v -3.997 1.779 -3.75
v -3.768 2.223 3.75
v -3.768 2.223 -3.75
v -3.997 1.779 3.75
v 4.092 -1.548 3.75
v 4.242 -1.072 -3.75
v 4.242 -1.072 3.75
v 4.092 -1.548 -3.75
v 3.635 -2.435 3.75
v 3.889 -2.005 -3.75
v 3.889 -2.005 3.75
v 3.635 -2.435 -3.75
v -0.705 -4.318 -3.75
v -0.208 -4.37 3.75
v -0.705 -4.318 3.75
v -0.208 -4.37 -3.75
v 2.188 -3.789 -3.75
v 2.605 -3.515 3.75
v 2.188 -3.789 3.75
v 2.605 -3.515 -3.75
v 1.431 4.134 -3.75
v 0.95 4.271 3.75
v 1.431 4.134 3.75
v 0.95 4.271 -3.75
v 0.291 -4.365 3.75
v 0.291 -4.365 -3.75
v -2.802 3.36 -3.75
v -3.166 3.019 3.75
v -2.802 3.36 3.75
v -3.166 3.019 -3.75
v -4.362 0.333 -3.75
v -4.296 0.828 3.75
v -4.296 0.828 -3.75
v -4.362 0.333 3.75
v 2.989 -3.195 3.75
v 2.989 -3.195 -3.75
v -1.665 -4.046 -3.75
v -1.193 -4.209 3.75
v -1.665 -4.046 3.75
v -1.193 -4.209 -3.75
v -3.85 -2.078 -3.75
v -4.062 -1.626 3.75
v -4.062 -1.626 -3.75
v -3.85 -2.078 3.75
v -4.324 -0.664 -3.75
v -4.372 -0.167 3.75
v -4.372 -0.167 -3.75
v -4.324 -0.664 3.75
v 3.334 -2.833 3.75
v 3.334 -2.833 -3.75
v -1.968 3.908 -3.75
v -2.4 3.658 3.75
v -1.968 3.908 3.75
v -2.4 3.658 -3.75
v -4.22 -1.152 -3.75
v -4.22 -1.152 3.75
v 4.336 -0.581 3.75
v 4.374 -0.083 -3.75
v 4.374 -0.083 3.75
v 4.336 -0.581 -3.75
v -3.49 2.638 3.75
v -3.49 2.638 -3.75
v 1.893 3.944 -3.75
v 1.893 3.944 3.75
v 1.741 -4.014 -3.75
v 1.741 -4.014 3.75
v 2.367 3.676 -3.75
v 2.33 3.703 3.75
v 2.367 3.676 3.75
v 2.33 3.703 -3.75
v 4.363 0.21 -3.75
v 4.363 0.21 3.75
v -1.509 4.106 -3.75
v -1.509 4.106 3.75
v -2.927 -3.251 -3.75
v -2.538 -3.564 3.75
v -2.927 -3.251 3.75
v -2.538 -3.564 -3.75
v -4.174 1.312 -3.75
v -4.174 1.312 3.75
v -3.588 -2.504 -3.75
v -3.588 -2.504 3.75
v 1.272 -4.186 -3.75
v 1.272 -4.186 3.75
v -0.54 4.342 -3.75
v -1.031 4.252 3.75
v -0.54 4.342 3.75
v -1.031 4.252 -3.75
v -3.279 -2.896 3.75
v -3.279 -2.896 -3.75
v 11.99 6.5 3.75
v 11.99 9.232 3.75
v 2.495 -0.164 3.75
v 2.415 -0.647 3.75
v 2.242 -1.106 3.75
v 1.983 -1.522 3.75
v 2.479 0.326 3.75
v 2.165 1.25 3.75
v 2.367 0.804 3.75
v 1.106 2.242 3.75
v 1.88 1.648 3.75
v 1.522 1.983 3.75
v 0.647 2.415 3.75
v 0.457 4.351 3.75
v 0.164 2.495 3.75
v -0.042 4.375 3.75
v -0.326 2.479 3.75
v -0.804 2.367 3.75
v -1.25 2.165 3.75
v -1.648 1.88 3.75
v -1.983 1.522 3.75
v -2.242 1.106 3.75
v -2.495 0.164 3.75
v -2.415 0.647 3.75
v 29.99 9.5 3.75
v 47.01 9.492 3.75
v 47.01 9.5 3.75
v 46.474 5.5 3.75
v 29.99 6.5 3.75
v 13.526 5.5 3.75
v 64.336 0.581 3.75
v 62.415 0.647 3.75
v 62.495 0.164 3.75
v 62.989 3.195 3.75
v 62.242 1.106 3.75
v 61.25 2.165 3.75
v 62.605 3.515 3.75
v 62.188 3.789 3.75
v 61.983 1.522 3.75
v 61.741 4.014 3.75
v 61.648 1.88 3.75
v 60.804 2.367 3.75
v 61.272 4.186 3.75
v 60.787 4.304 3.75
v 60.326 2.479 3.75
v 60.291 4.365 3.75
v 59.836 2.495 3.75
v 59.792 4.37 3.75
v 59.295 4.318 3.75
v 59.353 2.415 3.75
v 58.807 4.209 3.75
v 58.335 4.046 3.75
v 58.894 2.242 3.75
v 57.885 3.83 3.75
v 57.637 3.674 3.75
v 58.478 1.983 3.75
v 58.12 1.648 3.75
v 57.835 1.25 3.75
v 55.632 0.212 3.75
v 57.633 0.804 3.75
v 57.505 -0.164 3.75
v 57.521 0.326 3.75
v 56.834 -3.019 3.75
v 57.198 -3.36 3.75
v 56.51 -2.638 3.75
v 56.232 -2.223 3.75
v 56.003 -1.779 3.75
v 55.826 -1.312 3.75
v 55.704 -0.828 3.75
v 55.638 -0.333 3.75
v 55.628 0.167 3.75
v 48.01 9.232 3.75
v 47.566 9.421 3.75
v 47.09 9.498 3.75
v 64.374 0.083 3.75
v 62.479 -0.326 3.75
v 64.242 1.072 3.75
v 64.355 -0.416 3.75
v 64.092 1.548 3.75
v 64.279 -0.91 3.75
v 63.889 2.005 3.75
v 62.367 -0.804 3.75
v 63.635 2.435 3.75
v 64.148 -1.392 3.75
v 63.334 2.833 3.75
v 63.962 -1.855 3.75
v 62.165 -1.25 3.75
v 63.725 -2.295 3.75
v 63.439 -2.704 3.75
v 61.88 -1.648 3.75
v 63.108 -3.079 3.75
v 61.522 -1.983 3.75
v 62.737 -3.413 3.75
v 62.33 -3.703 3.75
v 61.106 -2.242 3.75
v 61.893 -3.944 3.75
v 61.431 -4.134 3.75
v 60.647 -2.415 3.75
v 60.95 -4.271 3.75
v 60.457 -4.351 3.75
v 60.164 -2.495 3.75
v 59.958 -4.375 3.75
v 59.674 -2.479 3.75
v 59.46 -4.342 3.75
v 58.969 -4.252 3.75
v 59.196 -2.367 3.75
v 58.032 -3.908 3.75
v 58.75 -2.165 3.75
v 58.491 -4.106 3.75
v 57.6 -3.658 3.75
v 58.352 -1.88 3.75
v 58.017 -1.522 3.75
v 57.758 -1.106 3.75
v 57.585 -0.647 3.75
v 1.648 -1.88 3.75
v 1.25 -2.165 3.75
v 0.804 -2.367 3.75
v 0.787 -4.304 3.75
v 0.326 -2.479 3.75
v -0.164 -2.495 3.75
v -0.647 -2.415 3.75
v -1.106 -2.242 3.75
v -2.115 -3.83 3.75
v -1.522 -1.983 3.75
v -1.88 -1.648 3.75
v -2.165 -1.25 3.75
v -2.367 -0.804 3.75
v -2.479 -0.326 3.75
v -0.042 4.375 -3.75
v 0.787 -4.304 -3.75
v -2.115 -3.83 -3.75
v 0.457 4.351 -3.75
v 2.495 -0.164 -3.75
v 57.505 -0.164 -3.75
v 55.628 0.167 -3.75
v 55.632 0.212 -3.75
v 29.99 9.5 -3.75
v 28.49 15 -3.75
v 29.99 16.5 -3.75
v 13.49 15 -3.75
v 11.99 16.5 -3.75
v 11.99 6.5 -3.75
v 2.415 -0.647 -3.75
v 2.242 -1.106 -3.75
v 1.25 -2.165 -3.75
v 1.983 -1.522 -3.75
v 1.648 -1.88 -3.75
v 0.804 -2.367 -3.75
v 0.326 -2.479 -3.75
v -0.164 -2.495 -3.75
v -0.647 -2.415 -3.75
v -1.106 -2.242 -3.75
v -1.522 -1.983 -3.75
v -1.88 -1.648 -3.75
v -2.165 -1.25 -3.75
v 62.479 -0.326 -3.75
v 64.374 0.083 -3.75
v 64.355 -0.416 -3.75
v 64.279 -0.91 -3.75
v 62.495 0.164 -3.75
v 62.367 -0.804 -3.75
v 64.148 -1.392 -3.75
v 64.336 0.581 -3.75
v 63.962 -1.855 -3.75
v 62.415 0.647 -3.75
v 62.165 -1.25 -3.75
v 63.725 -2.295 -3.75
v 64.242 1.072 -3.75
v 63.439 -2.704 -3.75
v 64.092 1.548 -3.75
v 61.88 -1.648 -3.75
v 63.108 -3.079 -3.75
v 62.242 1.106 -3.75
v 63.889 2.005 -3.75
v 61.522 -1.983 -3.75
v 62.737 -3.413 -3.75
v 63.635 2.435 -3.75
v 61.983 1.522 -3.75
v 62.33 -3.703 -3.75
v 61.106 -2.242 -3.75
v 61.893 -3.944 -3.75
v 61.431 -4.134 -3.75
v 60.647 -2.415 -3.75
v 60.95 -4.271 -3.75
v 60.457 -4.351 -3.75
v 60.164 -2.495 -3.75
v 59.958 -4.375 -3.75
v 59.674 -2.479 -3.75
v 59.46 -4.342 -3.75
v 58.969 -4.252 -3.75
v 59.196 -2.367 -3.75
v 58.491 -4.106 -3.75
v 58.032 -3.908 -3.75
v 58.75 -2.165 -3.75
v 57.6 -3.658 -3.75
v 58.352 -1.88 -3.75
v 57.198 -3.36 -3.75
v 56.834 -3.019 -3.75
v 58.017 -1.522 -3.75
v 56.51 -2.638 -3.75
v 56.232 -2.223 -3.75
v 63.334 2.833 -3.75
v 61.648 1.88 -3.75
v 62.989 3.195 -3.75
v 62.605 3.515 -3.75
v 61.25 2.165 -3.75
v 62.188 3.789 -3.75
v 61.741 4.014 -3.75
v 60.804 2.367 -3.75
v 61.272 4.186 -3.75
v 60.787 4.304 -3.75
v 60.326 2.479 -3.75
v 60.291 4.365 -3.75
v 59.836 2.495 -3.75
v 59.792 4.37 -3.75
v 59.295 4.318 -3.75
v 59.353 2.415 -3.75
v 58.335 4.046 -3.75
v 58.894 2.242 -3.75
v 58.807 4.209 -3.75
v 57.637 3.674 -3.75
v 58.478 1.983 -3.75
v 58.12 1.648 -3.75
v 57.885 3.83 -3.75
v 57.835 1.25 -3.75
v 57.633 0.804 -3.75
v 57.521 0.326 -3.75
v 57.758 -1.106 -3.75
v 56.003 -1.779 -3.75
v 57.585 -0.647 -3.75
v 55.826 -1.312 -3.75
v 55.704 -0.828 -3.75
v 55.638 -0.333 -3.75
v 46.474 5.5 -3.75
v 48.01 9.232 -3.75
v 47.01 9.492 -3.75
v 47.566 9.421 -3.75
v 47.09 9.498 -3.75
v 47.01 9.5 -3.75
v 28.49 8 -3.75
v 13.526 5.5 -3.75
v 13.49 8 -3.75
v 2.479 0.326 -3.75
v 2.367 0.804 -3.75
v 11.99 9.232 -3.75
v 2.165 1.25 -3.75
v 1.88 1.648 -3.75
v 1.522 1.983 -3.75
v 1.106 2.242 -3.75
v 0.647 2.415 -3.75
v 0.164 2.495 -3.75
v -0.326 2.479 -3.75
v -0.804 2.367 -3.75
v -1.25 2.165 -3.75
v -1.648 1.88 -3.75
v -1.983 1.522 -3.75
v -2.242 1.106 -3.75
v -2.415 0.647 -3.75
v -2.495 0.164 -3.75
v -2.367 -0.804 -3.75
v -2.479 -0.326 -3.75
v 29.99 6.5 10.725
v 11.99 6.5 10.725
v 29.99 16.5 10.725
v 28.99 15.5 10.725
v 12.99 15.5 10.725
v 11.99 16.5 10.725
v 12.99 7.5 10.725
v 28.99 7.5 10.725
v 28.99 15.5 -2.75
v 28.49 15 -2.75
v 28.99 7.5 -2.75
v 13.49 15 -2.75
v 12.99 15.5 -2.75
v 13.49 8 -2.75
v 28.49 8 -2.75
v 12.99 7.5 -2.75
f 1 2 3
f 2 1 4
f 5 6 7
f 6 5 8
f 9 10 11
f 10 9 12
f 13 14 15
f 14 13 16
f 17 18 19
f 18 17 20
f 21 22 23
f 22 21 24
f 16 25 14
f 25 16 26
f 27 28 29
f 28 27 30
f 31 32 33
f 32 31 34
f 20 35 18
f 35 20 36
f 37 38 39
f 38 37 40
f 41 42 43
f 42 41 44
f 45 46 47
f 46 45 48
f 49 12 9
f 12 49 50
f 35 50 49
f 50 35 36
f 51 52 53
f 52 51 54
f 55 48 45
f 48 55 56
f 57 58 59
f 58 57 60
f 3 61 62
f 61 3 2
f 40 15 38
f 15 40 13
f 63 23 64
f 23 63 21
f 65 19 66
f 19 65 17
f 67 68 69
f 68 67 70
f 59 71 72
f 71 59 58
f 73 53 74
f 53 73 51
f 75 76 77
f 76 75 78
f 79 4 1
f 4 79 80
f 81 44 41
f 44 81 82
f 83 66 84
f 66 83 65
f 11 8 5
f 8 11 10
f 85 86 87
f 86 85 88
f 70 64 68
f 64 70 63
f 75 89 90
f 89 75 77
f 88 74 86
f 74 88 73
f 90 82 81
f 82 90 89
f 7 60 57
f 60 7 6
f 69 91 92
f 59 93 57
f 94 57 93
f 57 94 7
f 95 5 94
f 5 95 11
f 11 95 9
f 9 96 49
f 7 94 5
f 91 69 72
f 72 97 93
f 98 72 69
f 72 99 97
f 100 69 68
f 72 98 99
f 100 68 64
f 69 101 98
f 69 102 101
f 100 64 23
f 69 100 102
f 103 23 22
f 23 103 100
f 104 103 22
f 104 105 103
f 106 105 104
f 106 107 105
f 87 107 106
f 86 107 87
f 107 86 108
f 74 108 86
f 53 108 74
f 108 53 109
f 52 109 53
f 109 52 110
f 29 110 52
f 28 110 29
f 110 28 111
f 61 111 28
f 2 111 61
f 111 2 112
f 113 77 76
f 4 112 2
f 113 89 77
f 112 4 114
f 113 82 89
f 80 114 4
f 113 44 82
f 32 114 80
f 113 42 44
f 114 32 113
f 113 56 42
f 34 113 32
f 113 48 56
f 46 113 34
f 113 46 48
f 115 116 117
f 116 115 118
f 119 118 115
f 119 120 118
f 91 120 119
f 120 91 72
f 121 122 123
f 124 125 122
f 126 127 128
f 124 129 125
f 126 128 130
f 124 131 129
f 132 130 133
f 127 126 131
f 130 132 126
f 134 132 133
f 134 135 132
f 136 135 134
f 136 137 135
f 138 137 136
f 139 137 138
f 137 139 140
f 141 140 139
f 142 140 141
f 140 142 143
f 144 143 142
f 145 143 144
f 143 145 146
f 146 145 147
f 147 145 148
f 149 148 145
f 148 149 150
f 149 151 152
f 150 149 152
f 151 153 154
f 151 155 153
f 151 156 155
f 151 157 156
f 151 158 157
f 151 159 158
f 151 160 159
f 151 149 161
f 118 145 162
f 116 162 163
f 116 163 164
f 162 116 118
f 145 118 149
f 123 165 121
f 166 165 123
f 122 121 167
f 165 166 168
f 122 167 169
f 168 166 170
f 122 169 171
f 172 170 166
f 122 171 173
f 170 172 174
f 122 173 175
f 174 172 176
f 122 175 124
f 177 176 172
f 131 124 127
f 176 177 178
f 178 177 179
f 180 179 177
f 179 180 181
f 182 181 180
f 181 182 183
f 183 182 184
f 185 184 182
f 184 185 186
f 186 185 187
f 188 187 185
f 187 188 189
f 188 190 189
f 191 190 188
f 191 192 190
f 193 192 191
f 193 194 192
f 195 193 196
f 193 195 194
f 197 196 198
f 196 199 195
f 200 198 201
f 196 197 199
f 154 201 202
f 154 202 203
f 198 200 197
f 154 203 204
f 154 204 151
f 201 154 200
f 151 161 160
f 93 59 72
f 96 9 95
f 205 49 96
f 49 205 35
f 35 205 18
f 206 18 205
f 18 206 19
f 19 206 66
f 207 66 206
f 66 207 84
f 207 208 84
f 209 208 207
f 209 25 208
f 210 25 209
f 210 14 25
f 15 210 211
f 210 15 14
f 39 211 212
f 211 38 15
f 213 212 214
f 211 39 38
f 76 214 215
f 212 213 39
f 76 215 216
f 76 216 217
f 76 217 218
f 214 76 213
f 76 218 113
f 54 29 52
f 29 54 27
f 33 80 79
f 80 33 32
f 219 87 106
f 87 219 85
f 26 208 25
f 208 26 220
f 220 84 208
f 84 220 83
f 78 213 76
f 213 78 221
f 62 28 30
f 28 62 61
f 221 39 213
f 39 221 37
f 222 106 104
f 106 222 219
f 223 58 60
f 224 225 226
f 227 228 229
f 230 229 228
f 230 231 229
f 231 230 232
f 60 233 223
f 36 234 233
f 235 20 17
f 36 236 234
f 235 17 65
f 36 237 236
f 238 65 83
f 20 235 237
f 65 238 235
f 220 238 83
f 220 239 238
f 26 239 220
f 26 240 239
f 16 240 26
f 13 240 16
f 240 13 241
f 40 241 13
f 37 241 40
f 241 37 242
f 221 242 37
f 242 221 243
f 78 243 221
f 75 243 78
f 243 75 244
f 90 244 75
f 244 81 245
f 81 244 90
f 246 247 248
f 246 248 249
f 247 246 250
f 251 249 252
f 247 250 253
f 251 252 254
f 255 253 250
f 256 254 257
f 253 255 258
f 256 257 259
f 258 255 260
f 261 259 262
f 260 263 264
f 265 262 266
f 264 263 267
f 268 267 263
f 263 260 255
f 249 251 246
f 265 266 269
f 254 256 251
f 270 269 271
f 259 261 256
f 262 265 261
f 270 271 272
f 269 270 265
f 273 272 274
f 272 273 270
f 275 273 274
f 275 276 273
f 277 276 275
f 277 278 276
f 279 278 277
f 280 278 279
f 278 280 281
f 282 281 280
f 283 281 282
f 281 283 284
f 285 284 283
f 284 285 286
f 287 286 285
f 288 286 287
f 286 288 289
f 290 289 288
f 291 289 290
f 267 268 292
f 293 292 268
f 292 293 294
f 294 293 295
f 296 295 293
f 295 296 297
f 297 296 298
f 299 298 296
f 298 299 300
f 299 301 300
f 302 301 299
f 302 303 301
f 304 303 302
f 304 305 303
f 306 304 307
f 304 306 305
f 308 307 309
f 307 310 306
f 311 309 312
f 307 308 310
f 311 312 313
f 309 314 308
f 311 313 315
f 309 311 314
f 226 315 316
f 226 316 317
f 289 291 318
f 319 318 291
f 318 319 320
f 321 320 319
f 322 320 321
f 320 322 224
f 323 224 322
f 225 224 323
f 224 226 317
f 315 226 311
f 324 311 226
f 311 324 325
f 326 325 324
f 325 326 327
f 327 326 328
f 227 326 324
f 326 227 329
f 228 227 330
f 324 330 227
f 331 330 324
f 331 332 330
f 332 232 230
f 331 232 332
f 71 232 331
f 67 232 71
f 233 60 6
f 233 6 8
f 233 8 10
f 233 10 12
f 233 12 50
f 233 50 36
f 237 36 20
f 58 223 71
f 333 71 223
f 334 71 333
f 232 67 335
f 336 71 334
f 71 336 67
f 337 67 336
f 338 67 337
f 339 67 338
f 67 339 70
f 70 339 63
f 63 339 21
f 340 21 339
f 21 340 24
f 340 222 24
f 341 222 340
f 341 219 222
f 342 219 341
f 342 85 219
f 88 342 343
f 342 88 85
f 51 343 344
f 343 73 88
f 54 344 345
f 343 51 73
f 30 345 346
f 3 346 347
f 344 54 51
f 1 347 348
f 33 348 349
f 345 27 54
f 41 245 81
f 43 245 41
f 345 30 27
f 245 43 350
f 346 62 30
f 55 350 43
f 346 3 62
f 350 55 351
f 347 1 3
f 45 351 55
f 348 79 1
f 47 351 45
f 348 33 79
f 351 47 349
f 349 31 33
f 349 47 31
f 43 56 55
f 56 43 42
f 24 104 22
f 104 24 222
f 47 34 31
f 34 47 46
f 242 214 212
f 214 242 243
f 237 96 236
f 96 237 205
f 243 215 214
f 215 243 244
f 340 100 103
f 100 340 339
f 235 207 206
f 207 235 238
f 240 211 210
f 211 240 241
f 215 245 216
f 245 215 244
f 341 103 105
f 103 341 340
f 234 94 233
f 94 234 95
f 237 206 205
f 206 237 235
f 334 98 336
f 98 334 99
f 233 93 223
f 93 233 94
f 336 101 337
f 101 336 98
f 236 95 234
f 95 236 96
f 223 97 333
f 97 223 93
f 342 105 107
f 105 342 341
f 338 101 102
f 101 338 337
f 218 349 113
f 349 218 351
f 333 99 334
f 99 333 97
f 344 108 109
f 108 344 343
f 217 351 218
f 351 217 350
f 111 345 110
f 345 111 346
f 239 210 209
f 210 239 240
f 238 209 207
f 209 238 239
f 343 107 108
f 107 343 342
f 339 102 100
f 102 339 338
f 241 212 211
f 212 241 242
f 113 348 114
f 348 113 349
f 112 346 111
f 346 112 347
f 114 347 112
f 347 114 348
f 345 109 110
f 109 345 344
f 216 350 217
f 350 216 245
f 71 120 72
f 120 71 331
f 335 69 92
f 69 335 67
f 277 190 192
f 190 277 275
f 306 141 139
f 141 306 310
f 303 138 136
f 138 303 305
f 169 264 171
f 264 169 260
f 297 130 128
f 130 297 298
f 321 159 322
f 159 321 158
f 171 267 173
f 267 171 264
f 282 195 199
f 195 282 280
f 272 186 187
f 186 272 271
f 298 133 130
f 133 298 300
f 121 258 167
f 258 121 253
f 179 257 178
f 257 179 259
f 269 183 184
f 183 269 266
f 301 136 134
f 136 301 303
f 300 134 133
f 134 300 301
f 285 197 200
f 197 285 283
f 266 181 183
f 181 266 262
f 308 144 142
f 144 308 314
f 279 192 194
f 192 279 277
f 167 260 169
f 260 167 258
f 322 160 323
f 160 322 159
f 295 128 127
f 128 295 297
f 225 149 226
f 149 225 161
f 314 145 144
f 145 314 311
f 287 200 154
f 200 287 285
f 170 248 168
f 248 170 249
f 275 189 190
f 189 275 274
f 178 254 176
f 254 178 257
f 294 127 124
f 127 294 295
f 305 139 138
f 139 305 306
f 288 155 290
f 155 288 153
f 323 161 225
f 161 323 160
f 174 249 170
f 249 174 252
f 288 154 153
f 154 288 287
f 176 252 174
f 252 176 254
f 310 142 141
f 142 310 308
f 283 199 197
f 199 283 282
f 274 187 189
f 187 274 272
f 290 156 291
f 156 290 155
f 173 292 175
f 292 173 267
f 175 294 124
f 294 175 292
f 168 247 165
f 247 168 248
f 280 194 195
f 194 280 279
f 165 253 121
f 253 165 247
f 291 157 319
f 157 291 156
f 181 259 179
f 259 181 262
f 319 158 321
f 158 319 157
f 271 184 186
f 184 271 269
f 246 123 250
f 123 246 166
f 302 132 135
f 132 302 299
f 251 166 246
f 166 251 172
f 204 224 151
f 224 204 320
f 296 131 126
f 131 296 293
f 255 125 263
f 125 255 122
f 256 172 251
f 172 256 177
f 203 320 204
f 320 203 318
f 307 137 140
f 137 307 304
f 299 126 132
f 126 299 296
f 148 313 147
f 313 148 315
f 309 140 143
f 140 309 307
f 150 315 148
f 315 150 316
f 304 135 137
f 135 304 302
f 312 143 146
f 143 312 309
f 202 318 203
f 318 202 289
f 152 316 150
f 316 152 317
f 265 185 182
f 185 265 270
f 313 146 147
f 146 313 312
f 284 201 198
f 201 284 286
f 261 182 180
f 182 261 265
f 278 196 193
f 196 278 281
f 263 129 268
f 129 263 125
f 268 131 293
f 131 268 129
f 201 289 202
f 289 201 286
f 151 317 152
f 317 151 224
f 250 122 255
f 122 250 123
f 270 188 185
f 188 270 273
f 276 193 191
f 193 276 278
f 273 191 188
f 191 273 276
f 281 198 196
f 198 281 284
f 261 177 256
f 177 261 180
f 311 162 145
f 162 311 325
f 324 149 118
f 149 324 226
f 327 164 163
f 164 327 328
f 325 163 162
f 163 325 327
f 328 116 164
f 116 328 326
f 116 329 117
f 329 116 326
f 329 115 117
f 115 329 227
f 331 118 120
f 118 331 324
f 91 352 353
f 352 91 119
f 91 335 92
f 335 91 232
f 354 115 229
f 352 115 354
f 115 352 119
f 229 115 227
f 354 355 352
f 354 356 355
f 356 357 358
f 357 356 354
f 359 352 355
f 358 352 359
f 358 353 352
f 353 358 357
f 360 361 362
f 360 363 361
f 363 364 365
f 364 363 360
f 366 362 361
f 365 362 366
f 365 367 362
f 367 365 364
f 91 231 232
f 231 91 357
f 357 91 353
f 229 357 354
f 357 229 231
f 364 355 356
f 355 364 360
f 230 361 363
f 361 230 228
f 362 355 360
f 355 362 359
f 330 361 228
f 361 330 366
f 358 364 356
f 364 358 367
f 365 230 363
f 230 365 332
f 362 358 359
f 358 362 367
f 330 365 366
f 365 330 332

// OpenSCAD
// file: bracket.scad
standoff_spacing = 60;
standoff_width = 5;
standoff_height = standoff_width * 1.5;

arm_angle = 30;
arm_length = 15;
arm_height = standoff_height;
arm_width = standoff_width / 5 * 4;

xt60_bracket_thickness = 1;

arm_deg = 90 - arm_angle;
bridge_length = standoff_spacing - (cos(arm_angle) * arm_length) * 2;

$fs = $preview ? 1 : 0.5;
$fa = $preview ? 10 : 5;

anti_warp = .15;
filament_width = 1.75;

function anti_warp_widen(v) = v + (filament_width * anti_warp) * 2;
function anti_warp_shrink(v) = v - (filament_width * anti_warp) * 2;

module joint(height, diameter) {
	assert(height > 0 && diameter > 0, "invalid args");
	cylinder(h = height, d = diameter, center = true);
}

module standoff_hole(height, diameter) {
	joint(height, diameter);
}


module standoff() {
	difference() {
		standoff_hole(standoff_height, standoff_width * 1.75);
		standoff_hole(standoff_height, standoff_width);
	}
}

module standoff_arm() {
	standoff();
	difference() {
		translate([0, arm_length / 2]) cube([arm_width, arm_length, arm_height], center = true);
		standoff_hole(standoff_height, standoff_width);
	}
	translate([0, arm_length]) joint(arm_height, arm_width);
}

module xt60_bracket(gen_claws = true) {
	xt60_height = anti_warp_shrink(14);
	xt60_length = 16;
	xt60_width = 8;
	xt60_stub_width = 0.5;

	translate([-(xt60_bracket_thickness + xt60_length / 2), 0]) {
		cube([xt60_length + xt60_bracket_thickness * 2, xt60_bracket_thickness, xt60_height]);
		if (gen_claws) translate([0, -xt60_stub_width, -xt60_bracket_thickness]) cube([xt60_length + xt60_bracket_thickness * 2, xt60_stub_width + xt60_bracket_thickness, xt60_bracket_thickness]);
	}

	translate([xt60_length / 2, -(xt60_width + xt60_bracket_thickness)]) {
		cube([xt60_bracket_thickness, xt60_width + xt60_bracket_thickness * 2, xt60_height]);
		if (gen_claws) translate([-xt60_stub_width, 0, -xt60_bracket_thickness]) cube([xt60_stub_width + xt60_bracket_thickness, xt60_width + xt60_bracket_thickness * 2, xt60_bracket_thickness]);
	}

	translate([-(xt60_length / 2 + xt60_bracket_thickness), -(xt60_width + xt60_bracket_thickness)]) {
		cube([xt60_bracket_thickness, xt60_width + xt60_bracket_thickness * 2, xt60_height]);
		if (gen_claws) translate([0, 0, -xt60_bracket_thickness]) cube([xt60_stub_width + xt60_bracket_thickness, xt60_width + xt60_bracket_thickness * 2, xt60_bracket_thickness]);
	}

	translate([-(xt60_length / 2 + xt60_bracket_thickness), -(xt60_width + xt60_bracket_thickness)]) {
		cube([xt60_length + xt60_bracket_thickness * 2, xt60_bracket_thickness, xt60_height]);
		if (gen_claws) translate([0, 0, -xt60_bracket_thickness]) cube([xt60_length + xt60_bracket_thickness * 2, xt60_stub_width + xt60_bracket_thickness, xt60_bracket_thickness]);
	}
}

module bridge() {
	translate([bridge_length / 2, 0]) cube([bridge_length, arm_width, arm_height], center = true);
}

module bracket() {
	rotate([0, 0, -arm_deg]) standoff_arm();
	translate([standoff_spacing, 0]) rotate([0, 0, arm_deg]) standoff_arm();
	translate([cos(arm_angle) * arm_length, sin(arm_angle) * arm_length]) bridge();
}
// main file
include <bracket.scad>

module main() {
	difference() {
		bracket();
		translate([cos(arm_angle) * arm_length + 8,
			sin(arm_angle) * arm_length + arm_width * 2,
			 -arm_height / 2]) hull() xt60_bracket();
	}

	translate([cos(arm_angle) * arm_length + 8,
		sin(arm_angle) * arm_length + arm_width * 2,
		 -arm_height / 2 + xt60_bracket_thickness]) xt60_bracket();
}

main();
